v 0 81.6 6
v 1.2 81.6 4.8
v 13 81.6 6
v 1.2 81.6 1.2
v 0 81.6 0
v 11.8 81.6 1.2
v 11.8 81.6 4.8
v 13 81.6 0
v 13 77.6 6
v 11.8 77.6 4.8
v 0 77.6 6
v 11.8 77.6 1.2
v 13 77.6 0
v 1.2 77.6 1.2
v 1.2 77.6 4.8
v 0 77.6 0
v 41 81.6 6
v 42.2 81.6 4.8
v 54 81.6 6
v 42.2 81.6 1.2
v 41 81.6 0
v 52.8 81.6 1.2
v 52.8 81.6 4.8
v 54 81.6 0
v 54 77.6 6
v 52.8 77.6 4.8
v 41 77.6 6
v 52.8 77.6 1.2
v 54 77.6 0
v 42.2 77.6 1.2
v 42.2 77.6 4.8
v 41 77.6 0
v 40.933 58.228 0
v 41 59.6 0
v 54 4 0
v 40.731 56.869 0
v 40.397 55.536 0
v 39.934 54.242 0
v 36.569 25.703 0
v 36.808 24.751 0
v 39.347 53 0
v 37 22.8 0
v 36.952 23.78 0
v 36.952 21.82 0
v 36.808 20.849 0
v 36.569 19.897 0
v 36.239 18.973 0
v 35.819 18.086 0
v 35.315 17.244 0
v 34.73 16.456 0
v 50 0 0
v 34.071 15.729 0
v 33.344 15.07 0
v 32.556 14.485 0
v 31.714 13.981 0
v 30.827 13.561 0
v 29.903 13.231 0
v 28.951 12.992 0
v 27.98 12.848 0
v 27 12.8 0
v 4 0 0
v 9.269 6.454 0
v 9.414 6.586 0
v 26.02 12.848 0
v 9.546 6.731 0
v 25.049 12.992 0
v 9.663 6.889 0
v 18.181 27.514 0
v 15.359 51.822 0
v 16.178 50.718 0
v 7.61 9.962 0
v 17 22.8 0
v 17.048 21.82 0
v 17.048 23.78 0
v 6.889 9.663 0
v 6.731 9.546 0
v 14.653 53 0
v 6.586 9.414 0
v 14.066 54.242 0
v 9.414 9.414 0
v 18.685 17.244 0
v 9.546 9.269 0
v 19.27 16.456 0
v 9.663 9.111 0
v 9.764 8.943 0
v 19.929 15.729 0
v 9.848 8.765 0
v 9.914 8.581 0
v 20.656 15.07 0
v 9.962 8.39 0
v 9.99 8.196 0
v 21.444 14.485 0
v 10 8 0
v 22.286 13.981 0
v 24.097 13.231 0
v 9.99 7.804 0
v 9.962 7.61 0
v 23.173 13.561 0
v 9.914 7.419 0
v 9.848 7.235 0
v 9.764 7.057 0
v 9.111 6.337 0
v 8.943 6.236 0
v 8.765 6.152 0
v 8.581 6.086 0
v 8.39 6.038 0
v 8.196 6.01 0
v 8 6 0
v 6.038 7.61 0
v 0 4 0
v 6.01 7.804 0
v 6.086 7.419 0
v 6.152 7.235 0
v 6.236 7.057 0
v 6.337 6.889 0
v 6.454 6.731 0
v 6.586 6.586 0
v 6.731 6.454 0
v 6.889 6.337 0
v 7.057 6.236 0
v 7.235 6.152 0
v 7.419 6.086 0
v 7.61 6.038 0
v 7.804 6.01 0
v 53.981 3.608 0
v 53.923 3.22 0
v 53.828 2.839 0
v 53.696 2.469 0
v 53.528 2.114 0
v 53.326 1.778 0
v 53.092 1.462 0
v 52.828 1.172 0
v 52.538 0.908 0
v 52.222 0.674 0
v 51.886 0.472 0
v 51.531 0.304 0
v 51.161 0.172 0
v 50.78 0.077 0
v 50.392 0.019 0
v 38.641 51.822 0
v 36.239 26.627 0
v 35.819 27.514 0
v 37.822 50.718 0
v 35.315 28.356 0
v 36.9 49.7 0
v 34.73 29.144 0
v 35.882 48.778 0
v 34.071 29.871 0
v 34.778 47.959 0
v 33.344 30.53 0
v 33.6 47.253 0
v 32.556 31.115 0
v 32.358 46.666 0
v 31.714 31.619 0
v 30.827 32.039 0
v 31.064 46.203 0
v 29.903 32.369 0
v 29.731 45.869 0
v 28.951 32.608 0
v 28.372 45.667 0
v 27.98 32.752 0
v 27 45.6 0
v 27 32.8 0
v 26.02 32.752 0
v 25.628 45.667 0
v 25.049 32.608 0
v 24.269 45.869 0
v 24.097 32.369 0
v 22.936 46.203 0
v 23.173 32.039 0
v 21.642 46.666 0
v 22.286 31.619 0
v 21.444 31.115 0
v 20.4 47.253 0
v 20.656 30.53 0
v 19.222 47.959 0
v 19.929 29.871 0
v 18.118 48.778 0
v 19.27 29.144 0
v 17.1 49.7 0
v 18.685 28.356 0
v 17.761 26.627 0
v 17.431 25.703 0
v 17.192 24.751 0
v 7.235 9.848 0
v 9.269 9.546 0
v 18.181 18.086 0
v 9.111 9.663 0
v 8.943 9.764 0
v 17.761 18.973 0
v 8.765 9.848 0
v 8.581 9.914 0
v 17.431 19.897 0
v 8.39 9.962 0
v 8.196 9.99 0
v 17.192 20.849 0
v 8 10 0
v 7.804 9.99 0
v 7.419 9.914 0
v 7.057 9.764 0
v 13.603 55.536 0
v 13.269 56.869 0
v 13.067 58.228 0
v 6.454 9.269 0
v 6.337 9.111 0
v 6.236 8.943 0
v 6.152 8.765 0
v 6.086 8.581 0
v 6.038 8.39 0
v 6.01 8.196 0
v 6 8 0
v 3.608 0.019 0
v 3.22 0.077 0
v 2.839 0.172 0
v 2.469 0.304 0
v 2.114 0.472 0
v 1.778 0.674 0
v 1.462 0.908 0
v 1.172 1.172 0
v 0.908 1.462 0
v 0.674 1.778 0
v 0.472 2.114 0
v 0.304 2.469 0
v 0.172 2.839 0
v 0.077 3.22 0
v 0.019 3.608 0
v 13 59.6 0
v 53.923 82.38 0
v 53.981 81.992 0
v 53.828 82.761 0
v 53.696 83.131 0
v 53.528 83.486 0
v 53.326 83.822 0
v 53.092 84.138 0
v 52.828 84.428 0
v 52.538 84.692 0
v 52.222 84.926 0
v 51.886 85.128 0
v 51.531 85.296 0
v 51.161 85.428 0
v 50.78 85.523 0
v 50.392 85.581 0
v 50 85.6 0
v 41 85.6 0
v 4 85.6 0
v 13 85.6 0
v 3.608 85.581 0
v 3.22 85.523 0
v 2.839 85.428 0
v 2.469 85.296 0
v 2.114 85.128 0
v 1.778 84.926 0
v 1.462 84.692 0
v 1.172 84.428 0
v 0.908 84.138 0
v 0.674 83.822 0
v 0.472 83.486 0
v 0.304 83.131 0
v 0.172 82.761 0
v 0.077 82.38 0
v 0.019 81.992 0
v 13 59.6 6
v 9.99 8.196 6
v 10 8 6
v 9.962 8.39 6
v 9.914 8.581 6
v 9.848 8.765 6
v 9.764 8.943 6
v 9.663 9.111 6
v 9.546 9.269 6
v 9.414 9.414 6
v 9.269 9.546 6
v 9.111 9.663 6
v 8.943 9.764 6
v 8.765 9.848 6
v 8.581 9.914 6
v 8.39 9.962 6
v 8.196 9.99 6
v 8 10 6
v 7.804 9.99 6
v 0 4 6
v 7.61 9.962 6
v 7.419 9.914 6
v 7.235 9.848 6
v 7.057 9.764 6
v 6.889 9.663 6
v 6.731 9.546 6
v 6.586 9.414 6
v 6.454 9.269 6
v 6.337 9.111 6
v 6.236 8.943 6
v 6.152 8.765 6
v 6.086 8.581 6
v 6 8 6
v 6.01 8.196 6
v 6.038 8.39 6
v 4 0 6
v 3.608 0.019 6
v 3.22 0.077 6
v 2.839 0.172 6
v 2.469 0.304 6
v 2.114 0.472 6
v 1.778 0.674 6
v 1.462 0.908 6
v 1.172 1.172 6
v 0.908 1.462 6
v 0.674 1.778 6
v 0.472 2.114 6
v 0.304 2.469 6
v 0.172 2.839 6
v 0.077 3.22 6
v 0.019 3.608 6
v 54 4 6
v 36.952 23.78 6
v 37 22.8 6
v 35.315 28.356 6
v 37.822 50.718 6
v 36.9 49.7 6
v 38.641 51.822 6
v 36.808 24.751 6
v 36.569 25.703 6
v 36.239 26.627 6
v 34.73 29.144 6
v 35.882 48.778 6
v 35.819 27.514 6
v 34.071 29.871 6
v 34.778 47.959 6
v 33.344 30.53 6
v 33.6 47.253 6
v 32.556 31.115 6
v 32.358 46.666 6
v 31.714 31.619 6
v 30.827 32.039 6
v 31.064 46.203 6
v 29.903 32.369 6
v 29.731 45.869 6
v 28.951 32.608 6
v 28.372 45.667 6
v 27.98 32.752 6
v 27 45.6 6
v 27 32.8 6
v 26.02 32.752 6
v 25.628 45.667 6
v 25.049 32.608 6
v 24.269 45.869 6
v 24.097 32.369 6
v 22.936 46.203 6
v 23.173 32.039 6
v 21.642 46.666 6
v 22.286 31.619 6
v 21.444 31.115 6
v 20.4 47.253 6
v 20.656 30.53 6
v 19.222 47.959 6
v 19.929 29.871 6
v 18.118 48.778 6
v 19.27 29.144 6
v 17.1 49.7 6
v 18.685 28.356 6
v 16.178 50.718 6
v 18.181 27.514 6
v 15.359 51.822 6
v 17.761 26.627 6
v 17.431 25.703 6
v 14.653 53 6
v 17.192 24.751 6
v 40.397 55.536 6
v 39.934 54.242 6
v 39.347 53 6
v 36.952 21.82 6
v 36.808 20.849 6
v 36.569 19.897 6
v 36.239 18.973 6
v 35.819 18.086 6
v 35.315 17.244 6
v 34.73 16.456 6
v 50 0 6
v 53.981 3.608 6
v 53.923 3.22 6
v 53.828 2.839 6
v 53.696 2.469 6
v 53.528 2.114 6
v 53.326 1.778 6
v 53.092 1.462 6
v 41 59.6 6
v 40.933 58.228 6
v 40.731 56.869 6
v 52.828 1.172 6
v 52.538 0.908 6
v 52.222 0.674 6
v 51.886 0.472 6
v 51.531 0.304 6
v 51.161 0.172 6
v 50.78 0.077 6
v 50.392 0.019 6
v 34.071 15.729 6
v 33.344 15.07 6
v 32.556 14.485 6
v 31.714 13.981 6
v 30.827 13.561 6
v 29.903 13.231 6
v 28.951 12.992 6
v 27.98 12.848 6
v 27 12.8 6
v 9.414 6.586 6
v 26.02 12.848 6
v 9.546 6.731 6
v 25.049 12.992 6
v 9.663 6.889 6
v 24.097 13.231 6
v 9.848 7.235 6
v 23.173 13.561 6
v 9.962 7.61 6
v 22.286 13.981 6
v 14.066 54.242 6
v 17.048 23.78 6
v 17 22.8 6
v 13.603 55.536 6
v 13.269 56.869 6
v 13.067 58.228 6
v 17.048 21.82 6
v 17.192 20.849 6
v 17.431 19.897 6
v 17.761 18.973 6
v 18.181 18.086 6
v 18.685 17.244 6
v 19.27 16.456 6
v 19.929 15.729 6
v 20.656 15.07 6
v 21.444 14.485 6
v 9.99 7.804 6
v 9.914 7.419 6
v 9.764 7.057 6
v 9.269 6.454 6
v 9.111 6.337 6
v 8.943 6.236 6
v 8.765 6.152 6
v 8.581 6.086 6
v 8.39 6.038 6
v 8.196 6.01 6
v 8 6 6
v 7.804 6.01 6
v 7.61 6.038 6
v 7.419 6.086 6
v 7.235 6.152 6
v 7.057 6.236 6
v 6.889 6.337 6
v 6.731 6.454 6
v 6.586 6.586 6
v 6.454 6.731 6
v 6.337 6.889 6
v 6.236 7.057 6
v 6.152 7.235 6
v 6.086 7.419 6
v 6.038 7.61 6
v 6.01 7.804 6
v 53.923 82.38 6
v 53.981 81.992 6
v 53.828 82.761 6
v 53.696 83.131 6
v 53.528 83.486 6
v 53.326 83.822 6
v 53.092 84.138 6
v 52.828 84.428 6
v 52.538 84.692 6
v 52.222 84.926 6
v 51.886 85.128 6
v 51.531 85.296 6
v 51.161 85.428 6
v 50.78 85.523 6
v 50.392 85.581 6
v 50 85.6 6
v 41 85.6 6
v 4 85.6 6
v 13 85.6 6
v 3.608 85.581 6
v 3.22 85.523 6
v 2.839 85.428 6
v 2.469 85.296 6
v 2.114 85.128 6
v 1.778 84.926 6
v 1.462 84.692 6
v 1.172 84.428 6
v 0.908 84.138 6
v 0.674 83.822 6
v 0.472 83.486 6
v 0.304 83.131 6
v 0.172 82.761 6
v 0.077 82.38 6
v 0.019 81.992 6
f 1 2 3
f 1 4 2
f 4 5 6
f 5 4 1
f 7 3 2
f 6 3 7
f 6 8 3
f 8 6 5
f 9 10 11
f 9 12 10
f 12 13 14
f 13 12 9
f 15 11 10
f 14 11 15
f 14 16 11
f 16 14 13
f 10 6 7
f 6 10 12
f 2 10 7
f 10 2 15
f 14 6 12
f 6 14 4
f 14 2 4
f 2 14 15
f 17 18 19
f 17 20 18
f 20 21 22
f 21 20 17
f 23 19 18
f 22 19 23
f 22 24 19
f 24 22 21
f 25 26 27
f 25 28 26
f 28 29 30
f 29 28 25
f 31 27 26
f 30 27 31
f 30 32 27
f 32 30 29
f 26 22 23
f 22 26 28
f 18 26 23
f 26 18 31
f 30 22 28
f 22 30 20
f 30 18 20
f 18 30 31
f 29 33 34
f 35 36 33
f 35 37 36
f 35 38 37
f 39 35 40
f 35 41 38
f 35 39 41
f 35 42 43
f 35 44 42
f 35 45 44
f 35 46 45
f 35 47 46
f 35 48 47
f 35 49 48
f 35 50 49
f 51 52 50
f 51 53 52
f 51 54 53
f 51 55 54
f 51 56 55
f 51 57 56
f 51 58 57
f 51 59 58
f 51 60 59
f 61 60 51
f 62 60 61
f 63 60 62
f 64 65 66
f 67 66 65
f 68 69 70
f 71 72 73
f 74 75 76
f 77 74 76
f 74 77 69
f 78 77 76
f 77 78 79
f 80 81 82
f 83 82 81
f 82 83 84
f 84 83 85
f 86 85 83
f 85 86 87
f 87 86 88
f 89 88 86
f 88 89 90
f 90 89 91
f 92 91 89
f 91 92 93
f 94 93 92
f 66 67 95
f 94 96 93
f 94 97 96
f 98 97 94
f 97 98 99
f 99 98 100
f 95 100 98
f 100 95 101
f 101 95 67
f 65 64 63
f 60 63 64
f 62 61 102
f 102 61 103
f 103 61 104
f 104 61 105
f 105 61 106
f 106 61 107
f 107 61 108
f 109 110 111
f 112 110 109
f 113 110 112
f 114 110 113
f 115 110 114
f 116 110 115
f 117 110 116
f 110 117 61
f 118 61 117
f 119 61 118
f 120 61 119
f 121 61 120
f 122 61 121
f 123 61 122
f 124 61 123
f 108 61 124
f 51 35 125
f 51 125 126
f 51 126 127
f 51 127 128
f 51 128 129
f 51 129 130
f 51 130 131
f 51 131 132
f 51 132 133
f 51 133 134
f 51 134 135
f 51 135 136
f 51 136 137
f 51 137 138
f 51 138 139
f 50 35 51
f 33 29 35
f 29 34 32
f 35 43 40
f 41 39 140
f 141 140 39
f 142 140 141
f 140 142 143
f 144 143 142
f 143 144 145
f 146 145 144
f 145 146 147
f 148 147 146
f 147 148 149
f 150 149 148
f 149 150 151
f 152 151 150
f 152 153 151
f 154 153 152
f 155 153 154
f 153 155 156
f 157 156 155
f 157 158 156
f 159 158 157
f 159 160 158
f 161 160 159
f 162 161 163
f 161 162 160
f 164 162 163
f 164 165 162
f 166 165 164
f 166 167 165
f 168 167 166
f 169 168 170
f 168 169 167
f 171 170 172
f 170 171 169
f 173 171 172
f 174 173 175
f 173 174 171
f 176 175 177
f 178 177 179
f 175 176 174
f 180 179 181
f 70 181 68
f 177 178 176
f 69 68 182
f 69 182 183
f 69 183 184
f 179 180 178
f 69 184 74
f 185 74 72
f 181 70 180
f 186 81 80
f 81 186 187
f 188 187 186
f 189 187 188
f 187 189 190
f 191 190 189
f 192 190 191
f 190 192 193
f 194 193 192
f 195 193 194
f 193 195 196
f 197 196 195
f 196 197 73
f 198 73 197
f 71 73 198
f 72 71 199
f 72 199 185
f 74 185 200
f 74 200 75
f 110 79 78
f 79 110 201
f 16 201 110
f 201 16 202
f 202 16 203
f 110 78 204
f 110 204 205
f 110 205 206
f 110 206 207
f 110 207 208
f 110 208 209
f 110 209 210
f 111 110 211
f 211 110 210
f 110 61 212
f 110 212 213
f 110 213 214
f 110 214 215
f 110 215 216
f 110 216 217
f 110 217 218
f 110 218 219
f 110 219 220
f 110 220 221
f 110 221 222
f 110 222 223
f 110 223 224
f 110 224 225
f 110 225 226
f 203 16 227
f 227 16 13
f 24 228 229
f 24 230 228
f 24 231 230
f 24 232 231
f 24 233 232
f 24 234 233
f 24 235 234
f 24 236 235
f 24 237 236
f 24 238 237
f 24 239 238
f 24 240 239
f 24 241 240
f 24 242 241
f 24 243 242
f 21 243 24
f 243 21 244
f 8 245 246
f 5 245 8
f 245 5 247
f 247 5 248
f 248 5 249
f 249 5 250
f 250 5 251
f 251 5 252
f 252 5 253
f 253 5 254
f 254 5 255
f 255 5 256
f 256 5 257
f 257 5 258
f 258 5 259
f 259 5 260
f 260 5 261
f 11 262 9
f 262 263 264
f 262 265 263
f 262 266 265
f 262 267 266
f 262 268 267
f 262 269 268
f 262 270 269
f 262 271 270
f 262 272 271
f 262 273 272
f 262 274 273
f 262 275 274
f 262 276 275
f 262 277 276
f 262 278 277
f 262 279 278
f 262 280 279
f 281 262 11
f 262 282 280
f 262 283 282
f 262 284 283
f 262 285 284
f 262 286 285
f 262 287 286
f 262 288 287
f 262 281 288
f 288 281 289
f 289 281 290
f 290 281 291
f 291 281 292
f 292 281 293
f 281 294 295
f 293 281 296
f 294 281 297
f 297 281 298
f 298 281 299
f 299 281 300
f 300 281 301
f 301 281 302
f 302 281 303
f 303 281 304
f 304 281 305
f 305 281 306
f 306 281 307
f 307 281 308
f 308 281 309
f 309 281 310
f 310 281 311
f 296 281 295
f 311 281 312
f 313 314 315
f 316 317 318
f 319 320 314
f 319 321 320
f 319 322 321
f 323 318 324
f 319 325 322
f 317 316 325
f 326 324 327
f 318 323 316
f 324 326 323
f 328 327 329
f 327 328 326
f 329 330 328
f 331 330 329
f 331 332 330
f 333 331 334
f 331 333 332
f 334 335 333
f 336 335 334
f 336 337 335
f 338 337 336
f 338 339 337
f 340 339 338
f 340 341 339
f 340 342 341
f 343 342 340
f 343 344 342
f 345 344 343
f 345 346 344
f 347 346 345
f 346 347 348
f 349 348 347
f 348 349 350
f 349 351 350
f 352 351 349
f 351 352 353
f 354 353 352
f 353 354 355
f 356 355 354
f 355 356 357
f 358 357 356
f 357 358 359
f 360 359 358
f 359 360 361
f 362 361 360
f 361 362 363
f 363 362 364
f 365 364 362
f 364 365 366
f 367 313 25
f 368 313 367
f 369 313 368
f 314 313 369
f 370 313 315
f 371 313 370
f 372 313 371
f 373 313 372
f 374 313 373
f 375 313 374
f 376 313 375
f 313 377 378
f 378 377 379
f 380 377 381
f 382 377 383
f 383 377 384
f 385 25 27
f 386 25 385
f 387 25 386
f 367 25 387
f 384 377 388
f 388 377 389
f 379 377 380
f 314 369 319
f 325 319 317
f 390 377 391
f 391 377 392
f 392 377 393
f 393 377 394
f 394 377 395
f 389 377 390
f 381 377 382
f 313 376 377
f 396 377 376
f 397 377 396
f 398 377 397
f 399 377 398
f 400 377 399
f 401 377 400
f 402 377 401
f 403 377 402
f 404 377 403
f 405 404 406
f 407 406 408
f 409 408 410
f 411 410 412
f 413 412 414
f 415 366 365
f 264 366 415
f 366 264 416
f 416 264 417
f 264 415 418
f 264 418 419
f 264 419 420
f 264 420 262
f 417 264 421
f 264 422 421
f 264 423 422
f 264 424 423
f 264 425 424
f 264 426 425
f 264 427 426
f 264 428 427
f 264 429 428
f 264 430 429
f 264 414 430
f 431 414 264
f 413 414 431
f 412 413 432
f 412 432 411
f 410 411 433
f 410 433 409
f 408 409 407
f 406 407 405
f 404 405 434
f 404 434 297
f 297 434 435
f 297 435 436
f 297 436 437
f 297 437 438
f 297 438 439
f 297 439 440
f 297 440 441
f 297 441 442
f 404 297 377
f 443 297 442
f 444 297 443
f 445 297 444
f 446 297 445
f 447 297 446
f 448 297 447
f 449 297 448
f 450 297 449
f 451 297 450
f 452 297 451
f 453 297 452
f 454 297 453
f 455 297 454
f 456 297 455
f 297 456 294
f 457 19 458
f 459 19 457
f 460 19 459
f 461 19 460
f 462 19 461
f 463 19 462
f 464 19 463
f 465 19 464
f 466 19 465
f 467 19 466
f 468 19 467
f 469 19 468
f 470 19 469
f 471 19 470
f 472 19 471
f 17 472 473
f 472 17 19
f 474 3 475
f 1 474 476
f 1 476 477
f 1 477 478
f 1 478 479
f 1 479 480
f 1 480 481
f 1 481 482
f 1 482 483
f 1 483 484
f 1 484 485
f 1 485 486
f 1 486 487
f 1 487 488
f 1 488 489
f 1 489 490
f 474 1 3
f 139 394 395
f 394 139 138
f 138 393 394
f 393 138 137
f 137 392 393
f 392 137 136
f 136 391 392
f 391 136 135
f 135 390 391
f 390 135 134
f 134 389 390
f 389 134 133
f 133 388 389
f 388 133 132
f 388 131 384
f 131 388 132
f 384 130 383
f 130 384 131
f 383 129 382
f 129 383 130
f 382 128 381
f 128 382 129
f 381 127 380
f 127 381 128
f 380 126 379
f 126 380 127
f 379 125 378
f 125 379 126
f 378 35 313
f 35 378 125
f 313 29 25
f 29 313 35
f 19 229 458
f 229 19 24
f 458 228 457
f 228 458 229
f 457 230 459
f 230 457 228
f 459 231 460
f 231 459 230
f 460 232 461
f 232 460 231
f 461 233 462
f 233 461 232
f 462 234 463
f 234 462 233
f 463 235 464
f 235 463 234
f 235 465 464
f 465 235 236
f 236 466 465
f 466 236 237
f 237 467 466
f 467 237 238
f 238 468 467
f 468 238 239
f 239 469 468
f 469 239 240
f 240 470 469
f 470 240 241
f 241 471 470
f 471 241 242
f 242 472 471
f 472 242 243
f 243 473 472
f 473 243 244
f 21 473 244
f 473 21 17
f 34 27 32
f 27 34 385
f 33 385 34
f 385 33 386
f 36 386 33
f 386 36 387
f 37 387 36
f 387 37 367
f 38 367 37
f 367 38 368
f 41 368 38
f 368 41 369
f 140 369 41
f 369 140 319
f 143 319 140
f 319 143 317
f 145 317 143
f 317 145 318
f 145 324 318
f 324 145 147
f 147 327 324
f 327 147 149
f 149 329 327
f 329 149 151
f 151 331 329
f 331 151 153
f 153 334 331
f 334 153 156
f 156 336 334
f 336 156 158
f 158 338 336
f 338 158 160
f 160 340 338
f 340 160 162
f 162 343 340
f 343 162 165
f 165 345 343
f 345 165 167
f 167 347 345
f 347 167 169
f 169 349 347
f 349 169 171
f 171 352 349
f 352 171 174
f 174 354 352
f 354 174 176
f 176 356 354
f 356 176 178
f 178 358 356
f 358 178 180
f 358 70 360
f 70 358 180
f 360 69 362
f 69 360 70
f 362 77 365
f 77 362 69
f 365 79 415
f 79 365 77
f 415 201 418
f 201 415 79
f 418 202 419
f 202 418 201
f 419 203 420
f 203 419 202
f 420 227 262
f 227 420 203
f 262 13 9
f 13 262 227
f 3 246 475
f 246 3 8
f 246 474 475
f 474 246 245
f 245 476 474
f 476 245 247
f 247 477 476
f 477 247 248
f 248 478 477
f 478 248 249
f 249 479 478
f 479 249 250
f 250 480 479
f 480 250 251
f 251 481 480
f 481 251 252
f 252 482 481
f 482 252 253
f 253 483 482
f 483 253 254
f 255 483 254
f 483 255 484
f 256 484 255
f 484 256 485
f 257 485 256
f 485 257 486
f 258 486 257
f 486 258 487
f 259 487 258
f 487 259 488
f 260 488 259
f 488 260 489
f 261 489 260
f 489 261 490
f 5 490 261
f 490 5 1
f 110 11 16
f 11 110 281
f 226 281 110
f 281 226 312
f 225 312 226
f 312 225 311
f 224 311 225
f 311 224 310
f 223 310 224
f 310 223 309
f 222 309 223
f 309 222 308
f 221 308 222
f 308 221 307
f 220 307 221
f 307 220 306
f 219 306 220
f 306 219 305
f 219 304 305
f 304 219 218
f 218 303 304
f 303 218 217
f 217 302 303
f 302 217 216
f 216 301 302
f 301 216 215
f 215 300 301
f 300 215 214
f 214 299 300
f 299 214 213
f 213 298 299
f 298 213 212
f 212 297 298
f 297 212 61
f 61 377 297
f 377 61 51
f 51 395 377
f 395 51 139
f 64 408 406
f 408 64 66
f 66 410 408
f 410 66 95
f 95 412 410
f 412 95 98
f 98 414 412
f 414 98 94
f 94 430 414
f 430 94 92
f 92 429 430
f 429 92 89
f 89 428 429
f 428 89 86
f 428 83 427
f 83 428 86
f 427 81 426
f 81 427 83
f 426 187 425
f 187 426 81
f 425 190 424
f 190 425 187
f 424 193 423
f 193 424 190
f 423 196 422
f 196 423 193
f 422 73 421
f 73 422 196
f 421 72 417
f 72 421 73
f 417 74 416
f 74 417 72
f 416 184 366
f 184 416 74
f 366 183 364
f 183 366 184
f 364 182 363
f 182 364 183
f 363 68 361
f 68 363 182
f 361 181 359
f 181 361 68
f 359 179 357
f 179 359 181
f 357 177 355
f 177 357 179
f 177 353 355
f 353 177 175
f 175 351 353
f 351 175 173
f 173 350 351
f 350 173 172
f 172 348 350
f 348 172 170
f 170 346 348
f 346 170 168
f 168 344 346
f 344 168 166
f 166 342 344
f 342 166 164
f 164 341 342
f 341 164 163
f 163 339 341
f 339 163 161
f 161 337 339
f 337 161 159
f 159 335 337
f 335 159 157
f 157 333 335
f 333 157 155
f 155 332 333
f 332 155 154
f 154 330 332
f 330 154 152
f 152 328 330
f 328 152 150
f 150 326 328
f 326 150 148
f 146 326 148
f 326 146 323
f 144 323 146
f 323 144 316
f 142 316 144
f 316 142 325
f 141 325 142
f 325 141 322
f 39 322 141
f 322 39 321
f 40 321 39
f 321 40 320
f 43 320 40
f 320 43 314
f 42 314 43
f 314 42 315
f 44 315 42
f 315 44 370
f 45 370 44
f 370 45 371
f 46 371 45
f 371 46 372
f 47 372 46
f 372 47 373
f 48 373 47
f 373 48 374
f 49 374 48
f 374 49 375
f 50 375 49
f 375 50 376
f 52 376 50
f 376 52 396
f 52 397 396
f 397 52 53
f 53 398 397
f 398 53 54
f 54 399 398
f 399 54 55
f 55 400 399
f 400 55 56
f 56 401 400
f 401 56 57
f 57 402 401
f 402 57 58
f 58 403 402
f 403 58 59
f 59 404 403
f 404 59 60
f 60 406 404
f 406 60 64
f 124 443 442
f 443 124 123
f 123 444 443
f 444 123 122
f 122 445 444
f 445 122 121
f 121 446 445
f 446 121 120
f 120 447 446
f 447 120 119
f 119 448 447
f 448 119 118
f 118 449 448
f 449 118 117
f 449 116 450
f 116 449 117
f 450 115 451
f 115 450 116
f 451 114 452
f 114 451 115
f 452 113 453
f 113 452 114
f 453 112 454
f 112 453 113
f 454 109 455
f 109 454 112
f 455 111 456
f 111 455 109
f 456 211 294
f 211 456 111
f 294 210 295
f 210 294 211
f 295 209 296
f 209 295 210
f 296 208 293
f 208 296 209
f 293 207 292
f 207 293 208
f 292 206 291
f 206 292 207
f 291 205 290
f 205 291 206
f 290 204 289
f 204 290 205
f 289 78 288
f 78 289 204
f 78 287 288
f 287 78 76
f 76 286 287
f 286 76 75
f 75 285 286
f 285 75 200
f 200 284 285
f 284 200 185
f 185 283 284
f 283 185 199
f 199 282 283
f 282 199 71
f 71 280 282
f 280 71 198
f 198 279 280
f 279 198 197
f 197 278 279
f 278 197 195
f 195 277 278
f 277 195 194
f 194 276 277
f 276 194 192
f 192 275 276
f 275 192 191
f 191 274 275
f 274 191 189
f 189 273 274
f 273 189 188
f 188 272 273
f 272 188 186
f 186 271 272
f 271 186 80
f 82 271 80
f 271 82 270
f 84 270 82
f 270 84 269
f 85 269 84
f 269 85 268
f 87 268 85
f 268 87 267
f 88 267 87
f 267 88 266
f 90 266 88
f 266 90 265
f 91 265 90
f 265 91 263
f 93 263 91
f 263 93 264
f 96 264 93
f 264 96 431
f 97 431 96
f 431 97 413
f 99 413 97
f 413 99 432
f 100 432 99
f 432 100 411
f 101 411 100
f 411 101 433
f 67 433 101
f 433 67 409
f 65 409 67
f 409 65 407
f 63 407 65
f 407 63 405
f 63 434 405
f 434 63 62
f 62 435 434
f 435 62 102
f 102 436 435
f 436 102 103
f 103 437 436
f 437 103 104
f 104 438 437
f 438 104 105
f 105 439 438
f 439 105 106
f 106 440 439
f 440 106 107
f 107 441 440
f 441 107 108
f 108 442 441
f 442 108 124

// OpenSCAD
// Card-style slingshot, parametric. Original design (not a copy of any MakerWorld file).
// Edit the values below, then F6 + Export STL in OpenSCAD, or:
//   openscad -o slingshot.stl slingshot.scad
//   openscad -o slingshot.stl -D 'thickness=8' -D 'band_style="slot"' slingshot.scad

/* [Card] */
card_w     = 54;    // width  (credit card short side)
card_h     = 85.6;  // height (credit card long side)
thickness  = 6;     // PLA: >=6 for light bands, PETG/PA-CF recommended
corner_r   = 4;

/* [Fork] */
gap_w      = 28;    // opening between the prongs
gap_depth  = 40;    // how deep the opening goes into the card

/* [Band attachment] */
band_style = "groove"; // "groove" = wrap & tie, "slot" = thread flat band through, "none"
groove_y   = 6;     // groove centre, measured down from the prong tip
groove_w   = 4;     // groove height (fits ~3 wraps of thread / tube)
groove_d   = 1.2;   // groove depth into the prong
slot_w     = 2;     // slot thickness (flat band thickness + clearance)
slot_len   = 9;     // slot length across the prong

/* [Grip] */
finger_d   = 20;    // finger hole, 0 = none
lanyard_d  = 4;     // lanyard hole in bottom corner, 0 = none

/* [Text] */
label      = "";    // engraved on the front face, "" = none
label_size = 5;
label_depth= 0.6;

$fn = 64;

prong_w = (card_w - gap_w) / 2;
handle_h = card_h - gap_depth;

module outline() {
    difference() {
        offset(r = corner_r) offset(delta = -corner_r) square([card_w, card_h]);
        // fork opening with rounded bottom (avoids a stress corner)
        translate([prong_w, card_h - gap_depth + gap_w/2]) square([gap_w, card_h]);
        translate([card_w/2, card_h - gap_depth + gap_w/2]) circle(d = gap_w);
        if (finger_d > 0) translate([card_w/2, handle_h/2]) circle(d = finger_d);
        if (lanyard_d > 0) translate([corner_r + lanyard_d, corner_r + lanyard_d]) circle(d = lanyard_d);
    }
}

module band_cut(x0) {   // x0 = left edge of the prong
    y = card_h - groove_y;
    if (band_style == "groove")
        // ring around the prong: big box minus the prong core
        difference() {
            translate([x0 - 1, y - groove_w/2, -1]) cube([prong_w + 2, groove_w, thickness + 2]);
            translate([x0 + groove_d, y - groove_w/2 - 1, groove_d])
                cube([prong_w - 2*groove_d, groove_w + 2, thickness - 2*groove_d]);
        }
    else if (band_style == "slot")
        translate([x0 + (prong_w - slot_len)/2, y - slot_w/2, -1]) cube([slot_len, slot_w, thickness + 2]);
}

difference() {
    linear_extrude(thickness) outline();
    band_cut(0);
    band_cut(card_w - prong_w);
    if (label != "")
        translate([card_w/2, handle_h/2 - finger_d/2 - label_size - 2, thickness - label_depth])
            linear_extrude(label_depth + 1)
                text(label, size = label_size, halign = "center", font = "Liberation Sans:style=Bold");
}

assert(prong_w >= 8, "prongs thinner than 8 mm will snap - reduce gap_w");
assert(groove_d * 2 < min(prong_w, thickness) - 3, "groove too deep for prong");
